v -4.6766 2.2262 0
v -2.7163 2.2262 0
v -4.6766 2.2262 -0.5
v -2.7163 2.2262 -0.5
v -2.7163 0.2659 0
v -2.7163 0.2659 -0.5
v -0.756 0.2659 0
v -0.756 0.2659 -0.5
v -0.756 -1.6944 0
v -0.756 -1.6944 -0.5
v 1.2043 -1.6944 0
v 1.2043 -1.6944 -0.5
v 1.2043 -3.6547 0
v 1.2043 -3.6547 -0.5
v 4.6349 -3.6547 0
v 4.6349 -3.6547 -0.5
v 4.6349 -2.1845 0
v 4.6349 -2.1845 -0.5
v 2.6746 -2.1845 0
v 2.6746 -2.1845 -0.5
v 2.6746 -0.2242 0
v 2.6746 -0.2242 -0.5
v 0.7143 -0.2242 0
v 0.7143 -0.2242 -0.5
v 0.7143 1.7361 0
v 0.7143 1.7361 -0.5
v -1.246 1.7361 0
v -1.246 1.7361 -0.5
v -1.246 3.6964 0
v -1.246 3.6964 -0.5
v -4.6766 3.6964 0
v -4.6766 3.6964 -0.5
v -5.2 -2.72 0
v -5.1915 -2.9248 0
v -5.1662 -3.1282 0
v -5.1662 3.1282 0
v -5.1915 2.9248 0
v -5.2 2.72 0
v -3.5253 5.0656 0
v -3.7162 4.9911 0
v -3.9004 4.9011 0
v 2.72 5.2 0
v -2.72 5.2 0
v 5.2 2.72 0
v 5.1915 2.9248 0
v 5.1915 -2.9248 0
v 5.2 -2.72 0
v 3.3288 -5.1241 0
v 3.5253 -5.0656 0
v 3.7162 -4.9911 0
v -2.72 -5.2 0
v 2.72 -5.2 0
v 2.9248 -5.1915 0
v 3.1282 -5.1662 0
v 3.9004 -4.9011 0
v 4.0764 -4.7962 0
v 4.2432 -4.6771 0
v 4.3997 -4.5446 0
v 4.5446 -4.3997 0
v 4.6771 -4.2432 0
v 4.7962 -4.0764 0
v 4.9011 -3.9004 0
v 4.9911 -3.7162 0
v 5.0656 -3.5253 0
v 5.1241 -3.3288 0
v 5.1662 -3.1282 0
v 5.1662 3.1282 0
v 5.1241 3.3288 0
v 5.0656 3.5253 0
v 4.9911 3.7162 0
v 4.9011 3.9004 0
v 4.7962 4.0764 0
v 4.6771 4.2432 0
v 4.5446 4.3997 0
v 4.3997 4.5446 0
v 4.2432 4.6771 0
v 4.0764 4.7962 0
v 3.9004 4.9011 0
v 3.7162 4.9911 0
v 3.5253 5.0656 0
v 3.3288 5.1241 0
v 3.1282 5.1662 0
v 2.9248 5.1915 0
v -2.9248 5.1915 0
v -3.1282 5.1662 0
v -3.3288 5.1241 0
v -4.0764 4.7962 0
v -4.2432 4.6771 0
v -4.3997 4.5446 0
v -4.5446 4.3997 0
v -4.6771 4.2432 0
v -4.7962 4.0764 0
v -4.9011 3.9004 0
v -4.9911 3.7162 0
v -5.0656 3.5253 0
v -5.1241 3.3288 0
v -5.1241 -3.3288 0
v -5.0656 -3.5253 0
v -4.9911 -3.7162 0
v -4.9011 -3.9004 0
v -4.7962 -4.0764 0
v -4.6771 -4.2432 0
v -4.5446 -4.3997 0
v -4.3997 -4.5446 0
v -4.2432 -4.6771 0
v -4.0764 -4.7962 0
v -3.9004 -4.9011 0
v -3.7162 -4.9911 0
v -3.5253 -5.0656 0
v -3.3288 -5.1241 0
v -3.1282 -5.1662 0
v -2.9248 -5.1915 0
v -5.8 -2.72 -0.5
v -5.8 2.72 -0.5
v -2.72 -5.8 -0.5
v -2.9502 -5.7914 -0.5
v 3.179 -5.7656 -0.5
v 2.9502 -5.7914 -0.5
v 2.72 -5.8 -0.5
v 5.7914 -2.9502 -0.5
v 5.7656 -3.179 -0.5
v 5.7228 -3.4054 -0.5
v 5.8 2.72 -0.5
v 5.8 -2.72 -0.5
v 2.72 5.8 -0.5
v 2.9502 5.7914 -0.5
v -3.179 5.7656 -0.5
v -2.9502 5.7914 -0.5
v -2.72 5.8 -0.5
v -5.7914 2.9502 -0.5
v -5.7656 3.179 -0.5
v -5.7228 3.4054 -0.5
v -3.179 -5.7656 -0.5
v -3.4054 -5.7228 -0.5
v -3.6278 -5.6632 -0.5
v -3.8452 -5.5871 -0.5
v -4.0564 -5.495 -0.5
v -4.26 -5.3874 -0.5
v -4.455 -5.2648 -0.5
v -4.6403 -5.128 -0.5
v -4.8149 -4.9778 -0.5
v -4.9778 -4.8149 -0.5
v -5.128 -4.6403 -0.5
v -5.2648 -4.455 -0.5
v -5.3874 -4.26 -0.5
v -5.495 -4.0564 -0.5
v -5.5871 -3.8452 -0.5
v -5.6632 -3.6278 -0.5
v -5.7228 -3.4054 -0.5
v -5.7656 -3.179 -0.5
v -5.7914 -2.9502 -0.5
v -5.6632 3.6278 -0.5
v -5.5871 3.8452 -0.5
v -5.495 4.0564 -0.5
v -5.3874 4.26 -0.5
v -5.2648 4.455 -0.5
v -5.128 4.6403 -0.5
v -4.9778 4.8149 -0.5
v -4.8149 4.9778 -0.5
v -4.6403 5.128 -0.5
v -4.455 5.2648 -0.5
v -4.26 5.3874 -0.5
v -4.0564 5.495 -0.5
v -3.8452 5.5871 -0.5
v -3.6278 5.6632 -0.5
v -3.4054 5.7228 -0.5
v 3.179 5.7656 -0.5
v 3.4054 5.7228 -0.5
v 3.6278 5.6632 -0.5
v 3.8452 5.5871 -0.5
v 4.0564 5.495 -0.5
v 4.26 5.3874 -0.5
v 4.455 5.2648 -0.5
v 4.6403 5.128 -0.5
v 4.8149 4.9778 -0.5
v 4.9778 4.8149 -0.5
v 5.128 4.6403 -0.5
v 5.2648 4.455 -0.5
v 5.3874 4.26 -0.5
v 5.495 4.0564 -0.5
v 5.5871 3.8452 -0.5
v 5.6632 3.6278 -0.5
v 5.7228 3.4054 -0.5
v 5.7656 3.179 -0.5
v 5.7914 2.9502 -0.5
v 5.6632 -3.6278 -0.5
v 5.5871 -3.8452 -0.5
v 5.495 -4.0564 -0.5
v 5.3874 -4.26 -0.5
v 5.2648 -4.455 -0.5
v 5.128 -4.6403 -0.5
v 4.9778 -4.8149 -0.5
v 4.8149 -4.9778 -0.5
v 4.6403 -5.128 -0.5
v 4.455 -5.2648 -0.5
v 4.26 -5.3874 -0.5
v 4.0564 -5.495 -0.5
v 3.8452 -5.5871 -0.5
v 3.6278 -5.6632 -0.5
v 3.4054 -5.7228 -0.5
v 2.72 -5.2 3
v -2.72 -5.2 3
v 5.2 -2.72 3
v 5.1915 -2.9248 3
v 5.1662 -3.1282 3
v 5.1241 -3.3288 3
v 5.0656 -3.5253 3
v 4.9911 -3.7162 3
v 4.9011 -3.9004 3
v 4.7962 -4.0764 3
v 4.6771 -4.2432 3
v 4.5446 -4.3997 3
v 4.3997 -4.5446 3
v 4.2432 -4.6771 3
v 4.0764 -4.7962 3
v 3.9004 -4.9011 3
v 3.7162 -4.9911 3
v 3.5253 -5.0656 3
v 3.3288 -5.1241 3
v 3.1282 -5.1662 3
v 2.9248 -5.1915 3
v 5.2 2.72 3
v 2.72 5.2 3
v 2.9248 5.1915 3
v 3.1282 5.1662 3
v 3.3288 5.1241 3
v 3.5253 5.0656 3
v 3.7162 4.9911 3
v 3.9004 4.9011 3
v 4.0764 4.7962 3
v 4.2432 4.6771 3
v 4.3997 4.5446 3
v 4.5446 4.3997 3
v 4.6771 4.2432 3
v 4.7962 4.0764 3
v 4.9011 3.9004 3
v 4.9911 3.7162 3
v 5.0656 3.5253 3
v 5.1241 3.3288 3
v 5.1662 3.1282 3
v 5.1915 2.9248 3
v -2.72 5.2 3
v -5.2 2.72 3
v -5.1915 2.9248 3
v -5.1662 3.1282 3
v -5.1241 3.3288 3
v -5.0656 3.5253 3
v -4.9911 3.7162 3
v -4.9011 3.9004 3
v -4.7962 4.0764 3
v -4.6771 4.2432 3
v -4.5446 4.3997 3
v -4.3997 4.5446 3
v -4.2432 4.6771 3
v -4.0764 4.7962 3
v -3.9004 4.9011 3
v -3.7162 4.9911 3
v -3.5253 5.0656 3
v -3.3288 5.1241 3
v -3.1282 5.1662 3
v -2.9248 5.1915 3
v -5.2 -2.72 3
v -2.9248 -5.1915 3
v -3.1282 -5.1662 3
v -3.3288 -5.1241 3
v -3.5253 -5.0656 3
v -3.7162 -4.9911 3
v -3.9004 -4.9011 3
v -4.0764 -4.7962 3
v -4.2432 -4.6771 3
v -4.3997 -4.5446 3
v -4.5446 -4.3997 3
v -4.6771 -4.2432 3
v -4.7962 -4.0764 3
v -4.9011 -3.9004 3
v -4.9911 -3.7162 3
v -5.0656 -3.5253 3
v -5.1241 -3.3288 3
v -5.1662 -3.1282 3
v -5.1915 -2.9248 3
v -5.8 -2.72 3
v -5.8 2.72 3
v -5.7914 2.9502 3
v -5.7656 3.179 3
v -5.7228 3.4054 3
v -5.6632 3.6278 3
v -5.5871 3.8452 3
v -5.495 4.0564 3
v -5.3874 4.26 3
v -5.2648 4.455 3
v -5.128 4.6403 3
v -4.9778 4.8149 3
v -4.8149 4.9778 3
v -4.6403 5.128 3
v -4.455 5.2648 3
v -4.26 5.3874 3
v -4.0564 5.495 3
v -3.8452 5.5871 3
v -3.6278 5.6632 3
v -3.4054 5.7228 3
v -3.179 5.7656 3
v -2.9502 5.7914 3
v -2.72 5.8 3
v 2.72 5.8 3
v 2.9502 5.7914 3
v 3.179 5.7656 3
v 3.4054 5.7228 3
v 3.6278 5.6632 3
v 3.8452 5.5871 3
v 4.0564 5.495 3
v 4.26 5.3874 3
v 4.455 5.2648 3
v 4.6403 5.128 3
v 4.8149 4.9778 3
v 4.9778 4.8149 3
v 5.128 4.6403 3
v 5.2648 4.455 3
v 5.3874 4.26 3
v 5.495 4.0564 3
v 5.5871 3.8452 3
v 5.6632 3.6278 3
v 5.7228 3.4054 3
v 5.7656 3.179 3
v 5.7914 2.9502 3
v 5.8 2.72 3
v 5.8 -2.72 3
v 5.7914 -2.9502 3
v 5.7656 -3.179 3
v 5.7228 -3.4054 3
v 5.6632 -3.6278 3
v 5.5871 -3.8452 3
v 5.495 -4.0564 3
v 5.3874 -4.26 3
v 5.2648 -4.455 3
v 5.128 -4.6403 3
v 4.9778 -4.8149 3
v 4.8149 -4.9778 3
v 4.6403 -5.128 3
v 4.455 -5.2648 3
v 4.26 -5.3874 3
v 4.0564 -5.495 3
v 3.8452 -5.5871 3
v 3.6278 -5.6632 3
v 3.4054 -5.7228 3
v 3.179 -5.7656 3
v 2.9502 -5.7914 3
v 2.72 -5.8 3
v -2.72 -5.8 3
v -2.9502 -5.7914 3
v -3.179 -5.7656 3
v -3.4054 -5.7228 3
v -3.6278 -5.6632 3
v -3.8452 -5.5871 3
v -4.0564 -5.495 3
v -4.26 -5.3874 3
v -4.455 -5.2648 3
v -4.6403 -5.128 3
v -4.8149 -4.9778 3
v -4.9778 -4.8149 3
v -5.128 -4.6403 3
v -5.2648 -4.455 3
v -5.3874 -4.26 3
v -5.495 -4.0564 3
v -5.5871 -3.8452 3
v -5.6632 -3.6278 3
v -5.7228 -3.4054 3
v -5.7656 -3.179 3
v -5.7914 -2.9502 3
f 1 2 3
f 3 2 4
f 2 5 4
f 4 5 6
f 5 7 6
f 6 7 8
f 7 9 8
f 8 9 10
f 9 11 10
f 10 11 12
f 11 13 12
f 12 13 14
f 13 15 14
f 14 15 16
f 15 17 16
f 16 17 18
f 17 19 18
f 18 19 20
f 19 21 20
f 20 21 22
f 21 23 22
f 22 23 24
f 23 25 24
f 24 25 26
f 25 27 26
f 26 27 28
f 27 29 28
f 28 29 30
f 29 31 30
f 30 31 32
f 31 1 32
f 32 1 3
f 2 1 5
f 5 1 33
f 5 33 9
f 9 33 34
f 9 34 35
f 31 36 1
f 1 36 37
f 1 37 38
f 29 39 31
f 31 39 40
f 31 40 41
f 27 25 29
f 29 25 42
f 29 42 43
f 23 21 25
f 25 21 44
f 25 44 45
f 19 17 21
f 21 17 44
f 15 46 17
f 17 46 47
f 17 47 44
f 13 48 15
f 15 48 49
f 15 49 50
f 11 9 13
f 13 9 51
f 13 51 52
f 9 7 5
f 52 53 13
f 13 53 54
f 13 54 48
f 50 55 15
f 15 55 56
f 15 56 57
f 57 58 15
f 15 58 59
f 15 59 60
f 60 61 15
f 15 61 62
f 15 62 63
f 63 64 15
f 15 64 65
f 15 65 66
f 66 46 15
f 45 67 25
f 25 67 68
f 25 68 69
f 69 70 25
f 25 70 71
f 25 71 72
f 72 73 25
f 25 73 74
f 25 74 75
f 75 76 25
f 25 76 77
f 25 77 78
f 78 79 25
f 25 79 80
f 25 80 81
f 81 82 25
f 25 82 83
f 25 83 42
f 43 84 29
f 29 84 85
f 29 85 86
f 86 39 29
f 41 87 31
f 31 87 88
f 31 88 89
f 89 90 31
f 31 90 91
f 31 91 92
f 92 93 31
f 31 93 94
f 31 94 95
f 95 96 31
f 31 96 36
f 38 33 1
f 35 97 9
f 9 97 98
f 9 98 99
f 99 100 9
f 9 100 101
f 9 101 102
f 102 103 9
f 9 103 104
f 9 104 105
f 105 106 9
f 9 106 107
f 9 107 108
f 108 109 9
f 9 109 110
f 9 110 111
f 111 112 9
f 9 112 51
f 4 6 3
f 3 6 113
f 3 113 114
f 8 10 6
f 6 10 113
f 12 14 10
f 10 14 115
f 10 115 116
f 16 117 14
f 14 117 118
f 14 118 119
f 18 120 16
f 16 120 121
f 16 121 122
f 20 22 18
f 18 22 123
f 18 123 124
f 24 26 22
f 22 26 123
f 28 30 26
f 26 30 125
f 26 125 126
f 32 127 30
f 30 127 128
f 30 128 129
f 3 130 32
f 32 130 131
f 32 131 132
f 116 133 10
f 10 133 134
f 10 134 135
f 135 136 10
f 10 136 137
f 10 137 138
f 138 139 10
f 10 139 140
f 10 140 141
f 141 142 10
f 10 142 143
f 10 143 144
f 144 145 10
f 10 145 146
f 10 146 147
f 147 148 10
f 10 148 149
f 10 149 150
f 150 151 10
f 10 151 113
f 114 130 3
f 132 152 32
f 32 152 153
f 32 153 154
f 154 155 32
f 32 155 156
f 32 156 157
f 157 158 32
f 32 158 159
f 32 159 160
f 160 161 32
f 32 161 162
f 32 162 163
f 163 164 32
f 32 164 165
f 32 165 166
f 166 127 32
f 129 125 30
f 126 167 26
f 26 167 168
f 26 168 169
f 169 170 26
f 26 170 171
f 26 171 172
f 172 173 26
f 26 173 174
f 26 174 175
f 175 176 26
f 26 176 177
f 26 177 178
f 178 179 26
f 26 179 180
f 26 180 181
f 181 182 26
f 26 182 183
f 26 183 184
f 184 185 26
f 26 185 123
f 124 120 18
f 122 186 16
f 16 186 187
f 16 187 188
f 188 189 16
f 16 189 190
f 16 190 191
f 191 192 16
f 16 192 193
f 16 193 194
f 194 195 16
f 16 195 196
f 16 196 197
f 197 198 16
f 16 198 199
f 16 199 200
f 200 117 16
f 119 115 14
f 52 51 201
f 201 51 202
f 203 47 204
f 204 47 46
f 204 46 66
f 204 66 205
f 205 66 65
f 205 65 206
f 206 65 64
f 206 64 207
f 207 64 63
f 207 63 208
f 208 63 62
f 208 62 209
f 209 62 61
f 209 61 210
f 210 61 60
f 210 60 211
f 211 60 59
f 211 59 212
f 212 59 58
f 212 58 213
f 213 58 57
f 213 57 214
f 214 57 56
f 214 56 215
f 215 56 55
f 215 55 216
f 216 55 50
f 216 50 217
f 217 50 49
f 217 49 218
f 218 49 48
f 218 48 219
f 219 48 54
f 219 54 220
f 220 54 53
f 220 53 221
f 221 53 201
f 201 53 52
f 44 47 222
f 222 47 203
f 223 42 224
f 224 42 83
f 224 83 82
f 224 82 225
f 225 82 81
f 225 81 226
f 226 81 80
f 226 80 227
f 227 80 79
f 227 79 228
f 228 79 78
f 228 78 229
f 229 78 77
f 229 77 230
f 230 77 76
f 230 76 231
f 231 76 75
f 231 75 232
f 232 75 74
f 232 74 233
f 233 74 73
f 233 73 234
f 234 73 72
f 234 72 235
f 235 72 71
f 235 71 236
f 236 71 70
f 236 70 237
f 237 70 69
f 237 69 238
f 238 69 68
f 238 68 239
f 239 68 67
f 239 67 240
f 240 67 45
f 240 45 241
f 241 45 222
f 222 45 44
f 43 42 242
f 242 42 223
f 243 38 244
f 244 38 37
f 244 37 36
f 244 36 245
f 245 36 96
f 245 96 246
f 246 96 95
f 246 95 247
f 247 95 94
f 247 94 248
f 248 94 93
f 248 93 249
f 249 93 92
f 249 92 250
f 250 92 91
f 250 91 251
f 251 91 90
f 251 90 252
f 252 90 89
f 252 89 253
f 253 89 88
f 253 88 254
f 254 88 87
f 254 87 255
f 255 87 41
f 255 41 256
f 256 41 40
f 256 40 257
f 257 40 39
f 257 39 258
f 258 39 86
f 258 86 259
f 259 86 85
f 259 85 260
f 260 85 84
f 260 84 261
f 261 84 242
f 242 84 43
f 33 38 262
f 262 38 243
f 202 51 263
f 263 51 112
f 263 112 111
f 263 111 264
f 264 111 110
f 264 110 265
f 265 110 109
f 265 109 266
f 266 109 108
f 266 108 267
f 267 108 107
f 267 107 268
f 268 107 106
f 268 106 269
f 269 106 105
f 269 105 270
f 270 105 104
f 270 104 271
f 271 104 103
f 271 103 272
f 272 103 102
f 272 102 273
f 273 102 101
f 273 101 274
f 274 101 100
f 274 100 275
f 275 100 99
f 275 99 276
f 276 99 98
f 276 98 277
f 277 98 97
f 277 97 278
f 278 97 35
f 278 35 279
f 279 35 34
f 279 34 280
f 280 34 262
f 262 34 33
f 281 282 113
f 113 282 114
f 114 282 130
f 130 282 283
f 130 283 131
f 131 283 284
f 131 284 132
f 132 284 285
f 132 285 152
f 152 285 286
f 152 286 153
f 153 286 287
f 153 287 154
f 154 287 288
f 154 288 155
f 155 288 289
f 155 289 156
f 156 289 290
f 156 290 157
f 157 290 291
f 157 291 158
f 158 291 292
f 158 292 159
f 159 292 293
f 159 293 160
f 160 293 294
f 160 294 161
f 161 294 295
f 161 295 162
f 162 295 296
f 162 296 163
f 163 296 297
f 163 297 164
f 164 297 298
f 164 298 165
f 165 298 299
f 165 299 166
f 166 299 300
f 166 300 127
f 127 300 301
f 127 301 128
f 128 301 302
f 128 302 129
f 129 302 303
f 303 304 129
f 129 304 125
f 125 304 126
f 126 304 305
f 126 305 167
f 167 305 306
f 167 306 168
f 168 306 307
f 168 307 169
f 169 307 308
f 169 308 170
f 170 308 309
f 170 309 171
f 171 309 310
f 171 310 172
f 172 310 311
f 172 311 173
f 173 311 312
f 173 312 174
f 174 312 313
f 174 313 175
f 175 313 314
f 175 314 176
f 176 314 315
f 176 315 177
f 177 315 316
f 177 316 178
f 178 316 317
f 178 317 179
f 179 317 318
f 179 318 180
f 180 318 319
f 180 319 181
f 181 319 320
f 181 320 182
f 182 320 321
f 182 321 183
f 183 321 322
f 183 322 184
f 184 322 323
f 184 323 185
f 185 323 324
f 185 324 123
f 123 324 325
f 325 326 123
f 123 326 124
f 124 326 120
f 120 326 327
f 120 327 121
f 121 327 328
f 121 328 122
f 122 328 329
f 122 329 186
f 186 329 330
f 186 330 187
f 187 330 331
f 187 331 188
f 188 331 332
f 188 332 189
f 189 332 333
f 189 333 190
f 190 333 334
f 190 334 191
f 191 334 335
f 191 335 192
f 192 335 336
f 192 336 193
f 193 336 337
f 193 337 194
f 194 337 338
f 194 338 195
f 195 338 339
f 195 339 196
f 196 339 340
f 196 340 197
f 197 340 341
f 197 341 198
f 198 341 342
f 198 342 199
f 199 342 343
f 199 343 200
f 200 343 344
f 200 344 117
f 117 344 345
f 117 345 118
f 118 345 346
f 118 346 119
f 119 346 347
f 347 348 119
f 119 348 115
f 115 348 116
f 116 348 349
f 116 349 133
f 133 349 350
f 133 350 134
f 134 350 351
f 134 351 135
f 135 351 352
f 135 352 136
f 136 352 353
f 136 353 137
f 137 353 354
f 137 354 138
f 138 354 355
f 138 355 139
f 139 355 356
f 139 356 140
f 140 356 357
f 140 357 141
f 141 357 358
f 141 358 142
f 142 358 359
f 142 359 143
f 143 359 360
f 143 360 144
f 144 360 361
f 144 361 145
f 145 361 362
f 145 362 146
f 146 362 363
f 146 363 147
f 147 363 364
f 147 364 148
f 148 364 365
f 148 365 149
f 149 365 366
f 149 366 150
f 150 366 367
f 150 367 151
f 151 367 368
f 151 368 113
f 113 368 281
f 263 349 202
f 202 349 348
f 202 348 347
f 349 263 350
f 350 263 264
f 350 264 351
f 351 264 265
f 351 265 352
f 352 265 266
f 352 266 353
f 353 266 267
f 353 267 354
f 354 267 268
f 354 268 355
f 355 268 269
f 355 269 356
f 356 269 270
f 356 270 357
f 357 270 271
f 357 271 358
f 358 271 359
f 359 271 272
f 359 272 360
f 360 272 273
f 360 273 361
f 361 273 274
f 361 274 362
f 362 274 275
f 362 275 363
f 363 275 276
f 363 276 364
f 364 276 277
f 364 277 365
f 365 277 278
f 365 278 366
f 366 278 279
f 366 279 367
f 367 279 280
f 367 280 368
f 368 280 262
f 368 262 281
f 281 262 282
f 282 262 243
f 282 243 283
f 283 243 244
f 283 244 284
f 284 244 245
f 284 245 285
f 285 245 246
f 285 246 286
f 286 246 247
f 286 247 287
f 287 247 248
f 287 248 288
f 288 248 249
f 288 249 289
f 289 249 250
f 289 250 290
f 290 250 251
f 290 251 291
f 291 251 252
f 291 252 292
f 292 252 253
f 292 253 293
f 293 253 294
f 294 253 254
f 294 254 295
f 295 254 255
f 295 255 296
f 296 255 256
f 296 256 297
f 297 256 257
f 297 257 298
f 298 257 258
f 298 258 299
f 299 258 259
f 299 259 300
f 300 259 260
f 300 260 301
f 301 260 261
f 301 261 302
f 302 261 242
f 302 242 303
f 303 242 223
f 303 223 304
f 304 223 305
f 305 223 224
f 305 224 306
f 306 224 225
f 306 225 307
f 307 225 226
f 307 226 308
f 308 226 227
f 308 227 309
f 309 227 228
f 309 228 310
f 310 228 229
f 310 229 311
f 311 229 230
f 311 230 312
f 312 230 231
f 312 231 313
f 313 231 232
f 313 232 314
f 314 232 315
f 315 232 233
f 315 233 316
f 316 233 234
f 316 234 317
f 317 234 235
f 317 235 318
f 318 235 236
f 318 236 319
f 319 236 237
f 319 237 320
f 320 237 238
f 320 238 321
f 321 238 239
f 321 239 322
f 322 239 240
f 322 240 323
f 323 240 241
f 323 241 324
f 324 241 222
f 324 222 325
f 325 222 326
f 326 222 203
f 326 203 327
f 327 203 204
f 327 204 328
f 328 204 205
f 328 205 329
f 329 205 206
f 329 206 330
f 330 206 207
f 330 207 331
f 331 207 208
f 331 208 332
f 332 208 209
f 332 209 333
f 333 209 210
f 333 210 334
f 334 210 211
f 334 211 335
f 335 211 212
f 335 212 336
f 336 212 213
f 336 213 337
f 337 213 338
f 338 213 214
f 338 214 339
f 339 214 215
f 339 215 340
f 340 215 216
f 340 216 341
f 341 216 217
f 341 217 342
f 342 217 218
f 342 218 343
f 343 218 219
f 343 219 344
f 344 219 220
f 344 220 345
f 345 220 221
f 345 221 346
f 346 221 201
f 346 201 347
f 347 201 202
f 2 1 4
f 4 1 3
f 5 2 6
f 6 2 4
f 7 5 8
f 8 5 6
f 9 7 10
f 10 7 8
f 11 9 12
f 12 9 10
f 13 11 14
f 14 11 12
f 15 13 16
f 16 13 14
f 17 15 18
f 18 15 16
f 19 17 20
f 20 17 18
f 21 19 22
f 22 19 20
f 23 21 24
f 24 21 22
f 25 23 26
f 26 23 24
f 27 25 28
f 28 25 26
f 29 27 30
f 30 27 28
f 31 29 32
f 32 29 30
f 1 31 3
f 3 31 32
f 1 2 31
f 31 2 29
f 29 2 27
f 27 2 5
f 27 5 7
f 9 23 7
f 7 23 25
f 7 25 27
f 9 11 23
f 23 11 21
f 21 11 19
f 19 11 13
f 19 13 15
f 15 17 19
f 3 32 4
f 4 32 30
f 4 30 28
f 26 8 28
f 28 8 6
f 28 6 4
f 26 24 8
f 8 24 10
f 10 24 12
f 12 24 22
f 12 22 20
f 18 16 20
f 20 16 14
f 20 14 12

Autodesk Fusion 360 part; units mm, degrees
sketch "Sketch1" plane through (0, 0, 0) normal (0, 0, 1) x (1, 0, 0)
  line L0 (2.72, 5) -> (-2.72, 5)
  line L1 (-5, 2.72) -> (-5, -2.72)
  line L2 (-2.72, -5) -> (2.72, -5)
  line L3 (5, -2.72) -> (5, 2.72)
  line L4 (5, 5) -> (-5, -5) construction
  line L5 (-5, 5) -> (5, -5) construction
  arc A0 (5, 2.72) -> (2.72, 5) centre (2.72, 2.72) ccw
  arc A1 (2.72, -5) -> (5, -2.72) centre (2.72, -2.72) ccw
  arc A2 (-5, -2.72) -> (-2.72, -5) centre (-2.72, -2.72) ccw
  arc A3 (-2.72, 5) -> (-5, 2.72) centre (-2.72, 2.72) ccw
  line L6 (-2.72, -5.2) -> (2.72, -5.2)
  arc A4 (2.72, -5.2) -> (5.2, -2.72) centre (2.72, -2.72) ccw
  line L7 (5.2, -2.72) -> (5.2, 2.72)
  arc A5 (5.2, 2.72) -> (2.72, 5.2) centre (2.72, 2.72) ccw
  line L8 (2.72, 5.2) -> (-2.72, 5.2)
  arc A6 (-2.72, 5.2) -> (-5.2, 2.72) centre (-2.72, 2.72) ccw
  line L9 (-5.2, 2.72) -> (-5.2, -2.72)
  arc A7 (-5.2, -2.72) -> (-2.72, -5.2) centre (-2.72, -2.72) ccw
  line L10 (-2.72, -5.8) -> (2.72, -5.8)
  arc A8 (2.72, -5.8) -> (5.8, -2.72) centre (2.72, -2.72) ccw
  line L11 (5.8, -2.72) -> (5.8, 2.72)
  arc A9 (5.8, 2.72) -> (2.72, 5.8) centre (2.72, 2.72) ccw
  line L12 (2.72, 5.8) -> (-2.72, 5.8)
  arc A10 (-2.72, 5.8) -> (-5.8, 2.72) centre (-2.72, 2.72) ccw
  line L13 (-5.8, 2.72) -> (-5.8, -2.72)
  arc A11 (-5.8, -2.72) -> (-2.72, -5.8) centre (-2.72, -2.72) ccw
  dimension "d1" = 10
  dimension "d2" = 10
  dimension "d3" = 2.28
  dimension "d4" = 0.2
  dimension "d5" = 0.8
extrude "Extrude1" add sketch "Sketch1" along normal blind 3 contours L10 A8 L11 A9 L12 A10 L13 A11 makes body 1
extrude "Extrude2" add sketch "Sketch1" against normal blind 0.5 contours L0 L1 L2 L3 A0 A1 A2 A3 | L6 A4 L7 A5 L8 A6 L9 A7 | L10 A8 L11 A9 L12 A10 L13 A11 bodies 1
sketch "Sketch2" plane through (0, 0, 0) normal (0, 0, 1) x (1, 0, 0)
  line L0 (-2.72, -5.2) -> (2.72, -5.2)
  arc A0 (2.72, -5.2) -> (5.2, -2.72) centre (2.72, -2.72) ccw
  line L1 (5.2, -2.72) -> (5.2, 2.72)
  arc A1 (5.2, 2.72) -> (2.72, 5.2) centre (2.72, 2.72) ccw
  line L2 (2.72, 5.2) -> (-2.72, 5.2)
  arc A2 (-2.72, 5.2) -> (-5.2, 2.72) centre (-2.72, 2.72) ccw
  line L3 (-5.2, 2.72) -> (-5.2, -2.72)
  arc A3 (-5.2, -2.72) -> (-2.72, -5.2) centre (-2.72, -2.72) ccw
  line L4 (-1.246, 3.6964) -> (-1.246, 1.7361)
  line L5 (-1.246, 1.7361) -> (0.7143, 1.7361)
  line L6 (0.7143, 1.7361) -> (0.7143, -0.2242)
  line L7 (0.7143, -0.2242) -> (2.6746, -0.2242)
  line L8 (2.6746, -0.2242) -> (2.6746, -2.1845)
  line L9 (2.6746, -2.1845) -> (4.6349, -2.1845)
  line L10 (4.6349, -2.1845) -> (4.6349, -3.6547)
  line L11 (4.6349, -3.6547) -> (1.2043, -3.6547)
  line L12 (1.2043, -3.6547) -> (1.2043, -1.6944)
  line L13 (1.2043, -1.6944) -> (-0.756, -1.6944)
  line L14 (-0.756, -1.6944) -> (-0.756, 0.2659)
  line L15 (-0.756, 0.2659) -> (-2.7163, 0.2659)
  line L16 (-2.7163, 0.2659) -> (-2.7163, 2.2262)
  line L17 (-2.7163, 2.2262) -> (-4.6766, 2.2262)
  line L18 (-4.6766, 2.2262) -> (-4.6766, 3.6964)
  line L19 (-4.6766, 3.6964) -> (-1.246, 3.6964)
extrude "Extrude3" cut sketch "Sketch2" against normal blind 0.5 contours L4 L5 L6 L7 L8 L9 L10 L11 L12 L13 L14 L15 L16 L17 L18 L19 bodies 1
extrude "Extrude4" add sketch "Sketch2" against normal blind 0.5 separate body contours L4 L5 L6 L7 L8 L9 L10 L11 L12 L13 L14 L15 L16 L17 L18 L19 makes body 2
